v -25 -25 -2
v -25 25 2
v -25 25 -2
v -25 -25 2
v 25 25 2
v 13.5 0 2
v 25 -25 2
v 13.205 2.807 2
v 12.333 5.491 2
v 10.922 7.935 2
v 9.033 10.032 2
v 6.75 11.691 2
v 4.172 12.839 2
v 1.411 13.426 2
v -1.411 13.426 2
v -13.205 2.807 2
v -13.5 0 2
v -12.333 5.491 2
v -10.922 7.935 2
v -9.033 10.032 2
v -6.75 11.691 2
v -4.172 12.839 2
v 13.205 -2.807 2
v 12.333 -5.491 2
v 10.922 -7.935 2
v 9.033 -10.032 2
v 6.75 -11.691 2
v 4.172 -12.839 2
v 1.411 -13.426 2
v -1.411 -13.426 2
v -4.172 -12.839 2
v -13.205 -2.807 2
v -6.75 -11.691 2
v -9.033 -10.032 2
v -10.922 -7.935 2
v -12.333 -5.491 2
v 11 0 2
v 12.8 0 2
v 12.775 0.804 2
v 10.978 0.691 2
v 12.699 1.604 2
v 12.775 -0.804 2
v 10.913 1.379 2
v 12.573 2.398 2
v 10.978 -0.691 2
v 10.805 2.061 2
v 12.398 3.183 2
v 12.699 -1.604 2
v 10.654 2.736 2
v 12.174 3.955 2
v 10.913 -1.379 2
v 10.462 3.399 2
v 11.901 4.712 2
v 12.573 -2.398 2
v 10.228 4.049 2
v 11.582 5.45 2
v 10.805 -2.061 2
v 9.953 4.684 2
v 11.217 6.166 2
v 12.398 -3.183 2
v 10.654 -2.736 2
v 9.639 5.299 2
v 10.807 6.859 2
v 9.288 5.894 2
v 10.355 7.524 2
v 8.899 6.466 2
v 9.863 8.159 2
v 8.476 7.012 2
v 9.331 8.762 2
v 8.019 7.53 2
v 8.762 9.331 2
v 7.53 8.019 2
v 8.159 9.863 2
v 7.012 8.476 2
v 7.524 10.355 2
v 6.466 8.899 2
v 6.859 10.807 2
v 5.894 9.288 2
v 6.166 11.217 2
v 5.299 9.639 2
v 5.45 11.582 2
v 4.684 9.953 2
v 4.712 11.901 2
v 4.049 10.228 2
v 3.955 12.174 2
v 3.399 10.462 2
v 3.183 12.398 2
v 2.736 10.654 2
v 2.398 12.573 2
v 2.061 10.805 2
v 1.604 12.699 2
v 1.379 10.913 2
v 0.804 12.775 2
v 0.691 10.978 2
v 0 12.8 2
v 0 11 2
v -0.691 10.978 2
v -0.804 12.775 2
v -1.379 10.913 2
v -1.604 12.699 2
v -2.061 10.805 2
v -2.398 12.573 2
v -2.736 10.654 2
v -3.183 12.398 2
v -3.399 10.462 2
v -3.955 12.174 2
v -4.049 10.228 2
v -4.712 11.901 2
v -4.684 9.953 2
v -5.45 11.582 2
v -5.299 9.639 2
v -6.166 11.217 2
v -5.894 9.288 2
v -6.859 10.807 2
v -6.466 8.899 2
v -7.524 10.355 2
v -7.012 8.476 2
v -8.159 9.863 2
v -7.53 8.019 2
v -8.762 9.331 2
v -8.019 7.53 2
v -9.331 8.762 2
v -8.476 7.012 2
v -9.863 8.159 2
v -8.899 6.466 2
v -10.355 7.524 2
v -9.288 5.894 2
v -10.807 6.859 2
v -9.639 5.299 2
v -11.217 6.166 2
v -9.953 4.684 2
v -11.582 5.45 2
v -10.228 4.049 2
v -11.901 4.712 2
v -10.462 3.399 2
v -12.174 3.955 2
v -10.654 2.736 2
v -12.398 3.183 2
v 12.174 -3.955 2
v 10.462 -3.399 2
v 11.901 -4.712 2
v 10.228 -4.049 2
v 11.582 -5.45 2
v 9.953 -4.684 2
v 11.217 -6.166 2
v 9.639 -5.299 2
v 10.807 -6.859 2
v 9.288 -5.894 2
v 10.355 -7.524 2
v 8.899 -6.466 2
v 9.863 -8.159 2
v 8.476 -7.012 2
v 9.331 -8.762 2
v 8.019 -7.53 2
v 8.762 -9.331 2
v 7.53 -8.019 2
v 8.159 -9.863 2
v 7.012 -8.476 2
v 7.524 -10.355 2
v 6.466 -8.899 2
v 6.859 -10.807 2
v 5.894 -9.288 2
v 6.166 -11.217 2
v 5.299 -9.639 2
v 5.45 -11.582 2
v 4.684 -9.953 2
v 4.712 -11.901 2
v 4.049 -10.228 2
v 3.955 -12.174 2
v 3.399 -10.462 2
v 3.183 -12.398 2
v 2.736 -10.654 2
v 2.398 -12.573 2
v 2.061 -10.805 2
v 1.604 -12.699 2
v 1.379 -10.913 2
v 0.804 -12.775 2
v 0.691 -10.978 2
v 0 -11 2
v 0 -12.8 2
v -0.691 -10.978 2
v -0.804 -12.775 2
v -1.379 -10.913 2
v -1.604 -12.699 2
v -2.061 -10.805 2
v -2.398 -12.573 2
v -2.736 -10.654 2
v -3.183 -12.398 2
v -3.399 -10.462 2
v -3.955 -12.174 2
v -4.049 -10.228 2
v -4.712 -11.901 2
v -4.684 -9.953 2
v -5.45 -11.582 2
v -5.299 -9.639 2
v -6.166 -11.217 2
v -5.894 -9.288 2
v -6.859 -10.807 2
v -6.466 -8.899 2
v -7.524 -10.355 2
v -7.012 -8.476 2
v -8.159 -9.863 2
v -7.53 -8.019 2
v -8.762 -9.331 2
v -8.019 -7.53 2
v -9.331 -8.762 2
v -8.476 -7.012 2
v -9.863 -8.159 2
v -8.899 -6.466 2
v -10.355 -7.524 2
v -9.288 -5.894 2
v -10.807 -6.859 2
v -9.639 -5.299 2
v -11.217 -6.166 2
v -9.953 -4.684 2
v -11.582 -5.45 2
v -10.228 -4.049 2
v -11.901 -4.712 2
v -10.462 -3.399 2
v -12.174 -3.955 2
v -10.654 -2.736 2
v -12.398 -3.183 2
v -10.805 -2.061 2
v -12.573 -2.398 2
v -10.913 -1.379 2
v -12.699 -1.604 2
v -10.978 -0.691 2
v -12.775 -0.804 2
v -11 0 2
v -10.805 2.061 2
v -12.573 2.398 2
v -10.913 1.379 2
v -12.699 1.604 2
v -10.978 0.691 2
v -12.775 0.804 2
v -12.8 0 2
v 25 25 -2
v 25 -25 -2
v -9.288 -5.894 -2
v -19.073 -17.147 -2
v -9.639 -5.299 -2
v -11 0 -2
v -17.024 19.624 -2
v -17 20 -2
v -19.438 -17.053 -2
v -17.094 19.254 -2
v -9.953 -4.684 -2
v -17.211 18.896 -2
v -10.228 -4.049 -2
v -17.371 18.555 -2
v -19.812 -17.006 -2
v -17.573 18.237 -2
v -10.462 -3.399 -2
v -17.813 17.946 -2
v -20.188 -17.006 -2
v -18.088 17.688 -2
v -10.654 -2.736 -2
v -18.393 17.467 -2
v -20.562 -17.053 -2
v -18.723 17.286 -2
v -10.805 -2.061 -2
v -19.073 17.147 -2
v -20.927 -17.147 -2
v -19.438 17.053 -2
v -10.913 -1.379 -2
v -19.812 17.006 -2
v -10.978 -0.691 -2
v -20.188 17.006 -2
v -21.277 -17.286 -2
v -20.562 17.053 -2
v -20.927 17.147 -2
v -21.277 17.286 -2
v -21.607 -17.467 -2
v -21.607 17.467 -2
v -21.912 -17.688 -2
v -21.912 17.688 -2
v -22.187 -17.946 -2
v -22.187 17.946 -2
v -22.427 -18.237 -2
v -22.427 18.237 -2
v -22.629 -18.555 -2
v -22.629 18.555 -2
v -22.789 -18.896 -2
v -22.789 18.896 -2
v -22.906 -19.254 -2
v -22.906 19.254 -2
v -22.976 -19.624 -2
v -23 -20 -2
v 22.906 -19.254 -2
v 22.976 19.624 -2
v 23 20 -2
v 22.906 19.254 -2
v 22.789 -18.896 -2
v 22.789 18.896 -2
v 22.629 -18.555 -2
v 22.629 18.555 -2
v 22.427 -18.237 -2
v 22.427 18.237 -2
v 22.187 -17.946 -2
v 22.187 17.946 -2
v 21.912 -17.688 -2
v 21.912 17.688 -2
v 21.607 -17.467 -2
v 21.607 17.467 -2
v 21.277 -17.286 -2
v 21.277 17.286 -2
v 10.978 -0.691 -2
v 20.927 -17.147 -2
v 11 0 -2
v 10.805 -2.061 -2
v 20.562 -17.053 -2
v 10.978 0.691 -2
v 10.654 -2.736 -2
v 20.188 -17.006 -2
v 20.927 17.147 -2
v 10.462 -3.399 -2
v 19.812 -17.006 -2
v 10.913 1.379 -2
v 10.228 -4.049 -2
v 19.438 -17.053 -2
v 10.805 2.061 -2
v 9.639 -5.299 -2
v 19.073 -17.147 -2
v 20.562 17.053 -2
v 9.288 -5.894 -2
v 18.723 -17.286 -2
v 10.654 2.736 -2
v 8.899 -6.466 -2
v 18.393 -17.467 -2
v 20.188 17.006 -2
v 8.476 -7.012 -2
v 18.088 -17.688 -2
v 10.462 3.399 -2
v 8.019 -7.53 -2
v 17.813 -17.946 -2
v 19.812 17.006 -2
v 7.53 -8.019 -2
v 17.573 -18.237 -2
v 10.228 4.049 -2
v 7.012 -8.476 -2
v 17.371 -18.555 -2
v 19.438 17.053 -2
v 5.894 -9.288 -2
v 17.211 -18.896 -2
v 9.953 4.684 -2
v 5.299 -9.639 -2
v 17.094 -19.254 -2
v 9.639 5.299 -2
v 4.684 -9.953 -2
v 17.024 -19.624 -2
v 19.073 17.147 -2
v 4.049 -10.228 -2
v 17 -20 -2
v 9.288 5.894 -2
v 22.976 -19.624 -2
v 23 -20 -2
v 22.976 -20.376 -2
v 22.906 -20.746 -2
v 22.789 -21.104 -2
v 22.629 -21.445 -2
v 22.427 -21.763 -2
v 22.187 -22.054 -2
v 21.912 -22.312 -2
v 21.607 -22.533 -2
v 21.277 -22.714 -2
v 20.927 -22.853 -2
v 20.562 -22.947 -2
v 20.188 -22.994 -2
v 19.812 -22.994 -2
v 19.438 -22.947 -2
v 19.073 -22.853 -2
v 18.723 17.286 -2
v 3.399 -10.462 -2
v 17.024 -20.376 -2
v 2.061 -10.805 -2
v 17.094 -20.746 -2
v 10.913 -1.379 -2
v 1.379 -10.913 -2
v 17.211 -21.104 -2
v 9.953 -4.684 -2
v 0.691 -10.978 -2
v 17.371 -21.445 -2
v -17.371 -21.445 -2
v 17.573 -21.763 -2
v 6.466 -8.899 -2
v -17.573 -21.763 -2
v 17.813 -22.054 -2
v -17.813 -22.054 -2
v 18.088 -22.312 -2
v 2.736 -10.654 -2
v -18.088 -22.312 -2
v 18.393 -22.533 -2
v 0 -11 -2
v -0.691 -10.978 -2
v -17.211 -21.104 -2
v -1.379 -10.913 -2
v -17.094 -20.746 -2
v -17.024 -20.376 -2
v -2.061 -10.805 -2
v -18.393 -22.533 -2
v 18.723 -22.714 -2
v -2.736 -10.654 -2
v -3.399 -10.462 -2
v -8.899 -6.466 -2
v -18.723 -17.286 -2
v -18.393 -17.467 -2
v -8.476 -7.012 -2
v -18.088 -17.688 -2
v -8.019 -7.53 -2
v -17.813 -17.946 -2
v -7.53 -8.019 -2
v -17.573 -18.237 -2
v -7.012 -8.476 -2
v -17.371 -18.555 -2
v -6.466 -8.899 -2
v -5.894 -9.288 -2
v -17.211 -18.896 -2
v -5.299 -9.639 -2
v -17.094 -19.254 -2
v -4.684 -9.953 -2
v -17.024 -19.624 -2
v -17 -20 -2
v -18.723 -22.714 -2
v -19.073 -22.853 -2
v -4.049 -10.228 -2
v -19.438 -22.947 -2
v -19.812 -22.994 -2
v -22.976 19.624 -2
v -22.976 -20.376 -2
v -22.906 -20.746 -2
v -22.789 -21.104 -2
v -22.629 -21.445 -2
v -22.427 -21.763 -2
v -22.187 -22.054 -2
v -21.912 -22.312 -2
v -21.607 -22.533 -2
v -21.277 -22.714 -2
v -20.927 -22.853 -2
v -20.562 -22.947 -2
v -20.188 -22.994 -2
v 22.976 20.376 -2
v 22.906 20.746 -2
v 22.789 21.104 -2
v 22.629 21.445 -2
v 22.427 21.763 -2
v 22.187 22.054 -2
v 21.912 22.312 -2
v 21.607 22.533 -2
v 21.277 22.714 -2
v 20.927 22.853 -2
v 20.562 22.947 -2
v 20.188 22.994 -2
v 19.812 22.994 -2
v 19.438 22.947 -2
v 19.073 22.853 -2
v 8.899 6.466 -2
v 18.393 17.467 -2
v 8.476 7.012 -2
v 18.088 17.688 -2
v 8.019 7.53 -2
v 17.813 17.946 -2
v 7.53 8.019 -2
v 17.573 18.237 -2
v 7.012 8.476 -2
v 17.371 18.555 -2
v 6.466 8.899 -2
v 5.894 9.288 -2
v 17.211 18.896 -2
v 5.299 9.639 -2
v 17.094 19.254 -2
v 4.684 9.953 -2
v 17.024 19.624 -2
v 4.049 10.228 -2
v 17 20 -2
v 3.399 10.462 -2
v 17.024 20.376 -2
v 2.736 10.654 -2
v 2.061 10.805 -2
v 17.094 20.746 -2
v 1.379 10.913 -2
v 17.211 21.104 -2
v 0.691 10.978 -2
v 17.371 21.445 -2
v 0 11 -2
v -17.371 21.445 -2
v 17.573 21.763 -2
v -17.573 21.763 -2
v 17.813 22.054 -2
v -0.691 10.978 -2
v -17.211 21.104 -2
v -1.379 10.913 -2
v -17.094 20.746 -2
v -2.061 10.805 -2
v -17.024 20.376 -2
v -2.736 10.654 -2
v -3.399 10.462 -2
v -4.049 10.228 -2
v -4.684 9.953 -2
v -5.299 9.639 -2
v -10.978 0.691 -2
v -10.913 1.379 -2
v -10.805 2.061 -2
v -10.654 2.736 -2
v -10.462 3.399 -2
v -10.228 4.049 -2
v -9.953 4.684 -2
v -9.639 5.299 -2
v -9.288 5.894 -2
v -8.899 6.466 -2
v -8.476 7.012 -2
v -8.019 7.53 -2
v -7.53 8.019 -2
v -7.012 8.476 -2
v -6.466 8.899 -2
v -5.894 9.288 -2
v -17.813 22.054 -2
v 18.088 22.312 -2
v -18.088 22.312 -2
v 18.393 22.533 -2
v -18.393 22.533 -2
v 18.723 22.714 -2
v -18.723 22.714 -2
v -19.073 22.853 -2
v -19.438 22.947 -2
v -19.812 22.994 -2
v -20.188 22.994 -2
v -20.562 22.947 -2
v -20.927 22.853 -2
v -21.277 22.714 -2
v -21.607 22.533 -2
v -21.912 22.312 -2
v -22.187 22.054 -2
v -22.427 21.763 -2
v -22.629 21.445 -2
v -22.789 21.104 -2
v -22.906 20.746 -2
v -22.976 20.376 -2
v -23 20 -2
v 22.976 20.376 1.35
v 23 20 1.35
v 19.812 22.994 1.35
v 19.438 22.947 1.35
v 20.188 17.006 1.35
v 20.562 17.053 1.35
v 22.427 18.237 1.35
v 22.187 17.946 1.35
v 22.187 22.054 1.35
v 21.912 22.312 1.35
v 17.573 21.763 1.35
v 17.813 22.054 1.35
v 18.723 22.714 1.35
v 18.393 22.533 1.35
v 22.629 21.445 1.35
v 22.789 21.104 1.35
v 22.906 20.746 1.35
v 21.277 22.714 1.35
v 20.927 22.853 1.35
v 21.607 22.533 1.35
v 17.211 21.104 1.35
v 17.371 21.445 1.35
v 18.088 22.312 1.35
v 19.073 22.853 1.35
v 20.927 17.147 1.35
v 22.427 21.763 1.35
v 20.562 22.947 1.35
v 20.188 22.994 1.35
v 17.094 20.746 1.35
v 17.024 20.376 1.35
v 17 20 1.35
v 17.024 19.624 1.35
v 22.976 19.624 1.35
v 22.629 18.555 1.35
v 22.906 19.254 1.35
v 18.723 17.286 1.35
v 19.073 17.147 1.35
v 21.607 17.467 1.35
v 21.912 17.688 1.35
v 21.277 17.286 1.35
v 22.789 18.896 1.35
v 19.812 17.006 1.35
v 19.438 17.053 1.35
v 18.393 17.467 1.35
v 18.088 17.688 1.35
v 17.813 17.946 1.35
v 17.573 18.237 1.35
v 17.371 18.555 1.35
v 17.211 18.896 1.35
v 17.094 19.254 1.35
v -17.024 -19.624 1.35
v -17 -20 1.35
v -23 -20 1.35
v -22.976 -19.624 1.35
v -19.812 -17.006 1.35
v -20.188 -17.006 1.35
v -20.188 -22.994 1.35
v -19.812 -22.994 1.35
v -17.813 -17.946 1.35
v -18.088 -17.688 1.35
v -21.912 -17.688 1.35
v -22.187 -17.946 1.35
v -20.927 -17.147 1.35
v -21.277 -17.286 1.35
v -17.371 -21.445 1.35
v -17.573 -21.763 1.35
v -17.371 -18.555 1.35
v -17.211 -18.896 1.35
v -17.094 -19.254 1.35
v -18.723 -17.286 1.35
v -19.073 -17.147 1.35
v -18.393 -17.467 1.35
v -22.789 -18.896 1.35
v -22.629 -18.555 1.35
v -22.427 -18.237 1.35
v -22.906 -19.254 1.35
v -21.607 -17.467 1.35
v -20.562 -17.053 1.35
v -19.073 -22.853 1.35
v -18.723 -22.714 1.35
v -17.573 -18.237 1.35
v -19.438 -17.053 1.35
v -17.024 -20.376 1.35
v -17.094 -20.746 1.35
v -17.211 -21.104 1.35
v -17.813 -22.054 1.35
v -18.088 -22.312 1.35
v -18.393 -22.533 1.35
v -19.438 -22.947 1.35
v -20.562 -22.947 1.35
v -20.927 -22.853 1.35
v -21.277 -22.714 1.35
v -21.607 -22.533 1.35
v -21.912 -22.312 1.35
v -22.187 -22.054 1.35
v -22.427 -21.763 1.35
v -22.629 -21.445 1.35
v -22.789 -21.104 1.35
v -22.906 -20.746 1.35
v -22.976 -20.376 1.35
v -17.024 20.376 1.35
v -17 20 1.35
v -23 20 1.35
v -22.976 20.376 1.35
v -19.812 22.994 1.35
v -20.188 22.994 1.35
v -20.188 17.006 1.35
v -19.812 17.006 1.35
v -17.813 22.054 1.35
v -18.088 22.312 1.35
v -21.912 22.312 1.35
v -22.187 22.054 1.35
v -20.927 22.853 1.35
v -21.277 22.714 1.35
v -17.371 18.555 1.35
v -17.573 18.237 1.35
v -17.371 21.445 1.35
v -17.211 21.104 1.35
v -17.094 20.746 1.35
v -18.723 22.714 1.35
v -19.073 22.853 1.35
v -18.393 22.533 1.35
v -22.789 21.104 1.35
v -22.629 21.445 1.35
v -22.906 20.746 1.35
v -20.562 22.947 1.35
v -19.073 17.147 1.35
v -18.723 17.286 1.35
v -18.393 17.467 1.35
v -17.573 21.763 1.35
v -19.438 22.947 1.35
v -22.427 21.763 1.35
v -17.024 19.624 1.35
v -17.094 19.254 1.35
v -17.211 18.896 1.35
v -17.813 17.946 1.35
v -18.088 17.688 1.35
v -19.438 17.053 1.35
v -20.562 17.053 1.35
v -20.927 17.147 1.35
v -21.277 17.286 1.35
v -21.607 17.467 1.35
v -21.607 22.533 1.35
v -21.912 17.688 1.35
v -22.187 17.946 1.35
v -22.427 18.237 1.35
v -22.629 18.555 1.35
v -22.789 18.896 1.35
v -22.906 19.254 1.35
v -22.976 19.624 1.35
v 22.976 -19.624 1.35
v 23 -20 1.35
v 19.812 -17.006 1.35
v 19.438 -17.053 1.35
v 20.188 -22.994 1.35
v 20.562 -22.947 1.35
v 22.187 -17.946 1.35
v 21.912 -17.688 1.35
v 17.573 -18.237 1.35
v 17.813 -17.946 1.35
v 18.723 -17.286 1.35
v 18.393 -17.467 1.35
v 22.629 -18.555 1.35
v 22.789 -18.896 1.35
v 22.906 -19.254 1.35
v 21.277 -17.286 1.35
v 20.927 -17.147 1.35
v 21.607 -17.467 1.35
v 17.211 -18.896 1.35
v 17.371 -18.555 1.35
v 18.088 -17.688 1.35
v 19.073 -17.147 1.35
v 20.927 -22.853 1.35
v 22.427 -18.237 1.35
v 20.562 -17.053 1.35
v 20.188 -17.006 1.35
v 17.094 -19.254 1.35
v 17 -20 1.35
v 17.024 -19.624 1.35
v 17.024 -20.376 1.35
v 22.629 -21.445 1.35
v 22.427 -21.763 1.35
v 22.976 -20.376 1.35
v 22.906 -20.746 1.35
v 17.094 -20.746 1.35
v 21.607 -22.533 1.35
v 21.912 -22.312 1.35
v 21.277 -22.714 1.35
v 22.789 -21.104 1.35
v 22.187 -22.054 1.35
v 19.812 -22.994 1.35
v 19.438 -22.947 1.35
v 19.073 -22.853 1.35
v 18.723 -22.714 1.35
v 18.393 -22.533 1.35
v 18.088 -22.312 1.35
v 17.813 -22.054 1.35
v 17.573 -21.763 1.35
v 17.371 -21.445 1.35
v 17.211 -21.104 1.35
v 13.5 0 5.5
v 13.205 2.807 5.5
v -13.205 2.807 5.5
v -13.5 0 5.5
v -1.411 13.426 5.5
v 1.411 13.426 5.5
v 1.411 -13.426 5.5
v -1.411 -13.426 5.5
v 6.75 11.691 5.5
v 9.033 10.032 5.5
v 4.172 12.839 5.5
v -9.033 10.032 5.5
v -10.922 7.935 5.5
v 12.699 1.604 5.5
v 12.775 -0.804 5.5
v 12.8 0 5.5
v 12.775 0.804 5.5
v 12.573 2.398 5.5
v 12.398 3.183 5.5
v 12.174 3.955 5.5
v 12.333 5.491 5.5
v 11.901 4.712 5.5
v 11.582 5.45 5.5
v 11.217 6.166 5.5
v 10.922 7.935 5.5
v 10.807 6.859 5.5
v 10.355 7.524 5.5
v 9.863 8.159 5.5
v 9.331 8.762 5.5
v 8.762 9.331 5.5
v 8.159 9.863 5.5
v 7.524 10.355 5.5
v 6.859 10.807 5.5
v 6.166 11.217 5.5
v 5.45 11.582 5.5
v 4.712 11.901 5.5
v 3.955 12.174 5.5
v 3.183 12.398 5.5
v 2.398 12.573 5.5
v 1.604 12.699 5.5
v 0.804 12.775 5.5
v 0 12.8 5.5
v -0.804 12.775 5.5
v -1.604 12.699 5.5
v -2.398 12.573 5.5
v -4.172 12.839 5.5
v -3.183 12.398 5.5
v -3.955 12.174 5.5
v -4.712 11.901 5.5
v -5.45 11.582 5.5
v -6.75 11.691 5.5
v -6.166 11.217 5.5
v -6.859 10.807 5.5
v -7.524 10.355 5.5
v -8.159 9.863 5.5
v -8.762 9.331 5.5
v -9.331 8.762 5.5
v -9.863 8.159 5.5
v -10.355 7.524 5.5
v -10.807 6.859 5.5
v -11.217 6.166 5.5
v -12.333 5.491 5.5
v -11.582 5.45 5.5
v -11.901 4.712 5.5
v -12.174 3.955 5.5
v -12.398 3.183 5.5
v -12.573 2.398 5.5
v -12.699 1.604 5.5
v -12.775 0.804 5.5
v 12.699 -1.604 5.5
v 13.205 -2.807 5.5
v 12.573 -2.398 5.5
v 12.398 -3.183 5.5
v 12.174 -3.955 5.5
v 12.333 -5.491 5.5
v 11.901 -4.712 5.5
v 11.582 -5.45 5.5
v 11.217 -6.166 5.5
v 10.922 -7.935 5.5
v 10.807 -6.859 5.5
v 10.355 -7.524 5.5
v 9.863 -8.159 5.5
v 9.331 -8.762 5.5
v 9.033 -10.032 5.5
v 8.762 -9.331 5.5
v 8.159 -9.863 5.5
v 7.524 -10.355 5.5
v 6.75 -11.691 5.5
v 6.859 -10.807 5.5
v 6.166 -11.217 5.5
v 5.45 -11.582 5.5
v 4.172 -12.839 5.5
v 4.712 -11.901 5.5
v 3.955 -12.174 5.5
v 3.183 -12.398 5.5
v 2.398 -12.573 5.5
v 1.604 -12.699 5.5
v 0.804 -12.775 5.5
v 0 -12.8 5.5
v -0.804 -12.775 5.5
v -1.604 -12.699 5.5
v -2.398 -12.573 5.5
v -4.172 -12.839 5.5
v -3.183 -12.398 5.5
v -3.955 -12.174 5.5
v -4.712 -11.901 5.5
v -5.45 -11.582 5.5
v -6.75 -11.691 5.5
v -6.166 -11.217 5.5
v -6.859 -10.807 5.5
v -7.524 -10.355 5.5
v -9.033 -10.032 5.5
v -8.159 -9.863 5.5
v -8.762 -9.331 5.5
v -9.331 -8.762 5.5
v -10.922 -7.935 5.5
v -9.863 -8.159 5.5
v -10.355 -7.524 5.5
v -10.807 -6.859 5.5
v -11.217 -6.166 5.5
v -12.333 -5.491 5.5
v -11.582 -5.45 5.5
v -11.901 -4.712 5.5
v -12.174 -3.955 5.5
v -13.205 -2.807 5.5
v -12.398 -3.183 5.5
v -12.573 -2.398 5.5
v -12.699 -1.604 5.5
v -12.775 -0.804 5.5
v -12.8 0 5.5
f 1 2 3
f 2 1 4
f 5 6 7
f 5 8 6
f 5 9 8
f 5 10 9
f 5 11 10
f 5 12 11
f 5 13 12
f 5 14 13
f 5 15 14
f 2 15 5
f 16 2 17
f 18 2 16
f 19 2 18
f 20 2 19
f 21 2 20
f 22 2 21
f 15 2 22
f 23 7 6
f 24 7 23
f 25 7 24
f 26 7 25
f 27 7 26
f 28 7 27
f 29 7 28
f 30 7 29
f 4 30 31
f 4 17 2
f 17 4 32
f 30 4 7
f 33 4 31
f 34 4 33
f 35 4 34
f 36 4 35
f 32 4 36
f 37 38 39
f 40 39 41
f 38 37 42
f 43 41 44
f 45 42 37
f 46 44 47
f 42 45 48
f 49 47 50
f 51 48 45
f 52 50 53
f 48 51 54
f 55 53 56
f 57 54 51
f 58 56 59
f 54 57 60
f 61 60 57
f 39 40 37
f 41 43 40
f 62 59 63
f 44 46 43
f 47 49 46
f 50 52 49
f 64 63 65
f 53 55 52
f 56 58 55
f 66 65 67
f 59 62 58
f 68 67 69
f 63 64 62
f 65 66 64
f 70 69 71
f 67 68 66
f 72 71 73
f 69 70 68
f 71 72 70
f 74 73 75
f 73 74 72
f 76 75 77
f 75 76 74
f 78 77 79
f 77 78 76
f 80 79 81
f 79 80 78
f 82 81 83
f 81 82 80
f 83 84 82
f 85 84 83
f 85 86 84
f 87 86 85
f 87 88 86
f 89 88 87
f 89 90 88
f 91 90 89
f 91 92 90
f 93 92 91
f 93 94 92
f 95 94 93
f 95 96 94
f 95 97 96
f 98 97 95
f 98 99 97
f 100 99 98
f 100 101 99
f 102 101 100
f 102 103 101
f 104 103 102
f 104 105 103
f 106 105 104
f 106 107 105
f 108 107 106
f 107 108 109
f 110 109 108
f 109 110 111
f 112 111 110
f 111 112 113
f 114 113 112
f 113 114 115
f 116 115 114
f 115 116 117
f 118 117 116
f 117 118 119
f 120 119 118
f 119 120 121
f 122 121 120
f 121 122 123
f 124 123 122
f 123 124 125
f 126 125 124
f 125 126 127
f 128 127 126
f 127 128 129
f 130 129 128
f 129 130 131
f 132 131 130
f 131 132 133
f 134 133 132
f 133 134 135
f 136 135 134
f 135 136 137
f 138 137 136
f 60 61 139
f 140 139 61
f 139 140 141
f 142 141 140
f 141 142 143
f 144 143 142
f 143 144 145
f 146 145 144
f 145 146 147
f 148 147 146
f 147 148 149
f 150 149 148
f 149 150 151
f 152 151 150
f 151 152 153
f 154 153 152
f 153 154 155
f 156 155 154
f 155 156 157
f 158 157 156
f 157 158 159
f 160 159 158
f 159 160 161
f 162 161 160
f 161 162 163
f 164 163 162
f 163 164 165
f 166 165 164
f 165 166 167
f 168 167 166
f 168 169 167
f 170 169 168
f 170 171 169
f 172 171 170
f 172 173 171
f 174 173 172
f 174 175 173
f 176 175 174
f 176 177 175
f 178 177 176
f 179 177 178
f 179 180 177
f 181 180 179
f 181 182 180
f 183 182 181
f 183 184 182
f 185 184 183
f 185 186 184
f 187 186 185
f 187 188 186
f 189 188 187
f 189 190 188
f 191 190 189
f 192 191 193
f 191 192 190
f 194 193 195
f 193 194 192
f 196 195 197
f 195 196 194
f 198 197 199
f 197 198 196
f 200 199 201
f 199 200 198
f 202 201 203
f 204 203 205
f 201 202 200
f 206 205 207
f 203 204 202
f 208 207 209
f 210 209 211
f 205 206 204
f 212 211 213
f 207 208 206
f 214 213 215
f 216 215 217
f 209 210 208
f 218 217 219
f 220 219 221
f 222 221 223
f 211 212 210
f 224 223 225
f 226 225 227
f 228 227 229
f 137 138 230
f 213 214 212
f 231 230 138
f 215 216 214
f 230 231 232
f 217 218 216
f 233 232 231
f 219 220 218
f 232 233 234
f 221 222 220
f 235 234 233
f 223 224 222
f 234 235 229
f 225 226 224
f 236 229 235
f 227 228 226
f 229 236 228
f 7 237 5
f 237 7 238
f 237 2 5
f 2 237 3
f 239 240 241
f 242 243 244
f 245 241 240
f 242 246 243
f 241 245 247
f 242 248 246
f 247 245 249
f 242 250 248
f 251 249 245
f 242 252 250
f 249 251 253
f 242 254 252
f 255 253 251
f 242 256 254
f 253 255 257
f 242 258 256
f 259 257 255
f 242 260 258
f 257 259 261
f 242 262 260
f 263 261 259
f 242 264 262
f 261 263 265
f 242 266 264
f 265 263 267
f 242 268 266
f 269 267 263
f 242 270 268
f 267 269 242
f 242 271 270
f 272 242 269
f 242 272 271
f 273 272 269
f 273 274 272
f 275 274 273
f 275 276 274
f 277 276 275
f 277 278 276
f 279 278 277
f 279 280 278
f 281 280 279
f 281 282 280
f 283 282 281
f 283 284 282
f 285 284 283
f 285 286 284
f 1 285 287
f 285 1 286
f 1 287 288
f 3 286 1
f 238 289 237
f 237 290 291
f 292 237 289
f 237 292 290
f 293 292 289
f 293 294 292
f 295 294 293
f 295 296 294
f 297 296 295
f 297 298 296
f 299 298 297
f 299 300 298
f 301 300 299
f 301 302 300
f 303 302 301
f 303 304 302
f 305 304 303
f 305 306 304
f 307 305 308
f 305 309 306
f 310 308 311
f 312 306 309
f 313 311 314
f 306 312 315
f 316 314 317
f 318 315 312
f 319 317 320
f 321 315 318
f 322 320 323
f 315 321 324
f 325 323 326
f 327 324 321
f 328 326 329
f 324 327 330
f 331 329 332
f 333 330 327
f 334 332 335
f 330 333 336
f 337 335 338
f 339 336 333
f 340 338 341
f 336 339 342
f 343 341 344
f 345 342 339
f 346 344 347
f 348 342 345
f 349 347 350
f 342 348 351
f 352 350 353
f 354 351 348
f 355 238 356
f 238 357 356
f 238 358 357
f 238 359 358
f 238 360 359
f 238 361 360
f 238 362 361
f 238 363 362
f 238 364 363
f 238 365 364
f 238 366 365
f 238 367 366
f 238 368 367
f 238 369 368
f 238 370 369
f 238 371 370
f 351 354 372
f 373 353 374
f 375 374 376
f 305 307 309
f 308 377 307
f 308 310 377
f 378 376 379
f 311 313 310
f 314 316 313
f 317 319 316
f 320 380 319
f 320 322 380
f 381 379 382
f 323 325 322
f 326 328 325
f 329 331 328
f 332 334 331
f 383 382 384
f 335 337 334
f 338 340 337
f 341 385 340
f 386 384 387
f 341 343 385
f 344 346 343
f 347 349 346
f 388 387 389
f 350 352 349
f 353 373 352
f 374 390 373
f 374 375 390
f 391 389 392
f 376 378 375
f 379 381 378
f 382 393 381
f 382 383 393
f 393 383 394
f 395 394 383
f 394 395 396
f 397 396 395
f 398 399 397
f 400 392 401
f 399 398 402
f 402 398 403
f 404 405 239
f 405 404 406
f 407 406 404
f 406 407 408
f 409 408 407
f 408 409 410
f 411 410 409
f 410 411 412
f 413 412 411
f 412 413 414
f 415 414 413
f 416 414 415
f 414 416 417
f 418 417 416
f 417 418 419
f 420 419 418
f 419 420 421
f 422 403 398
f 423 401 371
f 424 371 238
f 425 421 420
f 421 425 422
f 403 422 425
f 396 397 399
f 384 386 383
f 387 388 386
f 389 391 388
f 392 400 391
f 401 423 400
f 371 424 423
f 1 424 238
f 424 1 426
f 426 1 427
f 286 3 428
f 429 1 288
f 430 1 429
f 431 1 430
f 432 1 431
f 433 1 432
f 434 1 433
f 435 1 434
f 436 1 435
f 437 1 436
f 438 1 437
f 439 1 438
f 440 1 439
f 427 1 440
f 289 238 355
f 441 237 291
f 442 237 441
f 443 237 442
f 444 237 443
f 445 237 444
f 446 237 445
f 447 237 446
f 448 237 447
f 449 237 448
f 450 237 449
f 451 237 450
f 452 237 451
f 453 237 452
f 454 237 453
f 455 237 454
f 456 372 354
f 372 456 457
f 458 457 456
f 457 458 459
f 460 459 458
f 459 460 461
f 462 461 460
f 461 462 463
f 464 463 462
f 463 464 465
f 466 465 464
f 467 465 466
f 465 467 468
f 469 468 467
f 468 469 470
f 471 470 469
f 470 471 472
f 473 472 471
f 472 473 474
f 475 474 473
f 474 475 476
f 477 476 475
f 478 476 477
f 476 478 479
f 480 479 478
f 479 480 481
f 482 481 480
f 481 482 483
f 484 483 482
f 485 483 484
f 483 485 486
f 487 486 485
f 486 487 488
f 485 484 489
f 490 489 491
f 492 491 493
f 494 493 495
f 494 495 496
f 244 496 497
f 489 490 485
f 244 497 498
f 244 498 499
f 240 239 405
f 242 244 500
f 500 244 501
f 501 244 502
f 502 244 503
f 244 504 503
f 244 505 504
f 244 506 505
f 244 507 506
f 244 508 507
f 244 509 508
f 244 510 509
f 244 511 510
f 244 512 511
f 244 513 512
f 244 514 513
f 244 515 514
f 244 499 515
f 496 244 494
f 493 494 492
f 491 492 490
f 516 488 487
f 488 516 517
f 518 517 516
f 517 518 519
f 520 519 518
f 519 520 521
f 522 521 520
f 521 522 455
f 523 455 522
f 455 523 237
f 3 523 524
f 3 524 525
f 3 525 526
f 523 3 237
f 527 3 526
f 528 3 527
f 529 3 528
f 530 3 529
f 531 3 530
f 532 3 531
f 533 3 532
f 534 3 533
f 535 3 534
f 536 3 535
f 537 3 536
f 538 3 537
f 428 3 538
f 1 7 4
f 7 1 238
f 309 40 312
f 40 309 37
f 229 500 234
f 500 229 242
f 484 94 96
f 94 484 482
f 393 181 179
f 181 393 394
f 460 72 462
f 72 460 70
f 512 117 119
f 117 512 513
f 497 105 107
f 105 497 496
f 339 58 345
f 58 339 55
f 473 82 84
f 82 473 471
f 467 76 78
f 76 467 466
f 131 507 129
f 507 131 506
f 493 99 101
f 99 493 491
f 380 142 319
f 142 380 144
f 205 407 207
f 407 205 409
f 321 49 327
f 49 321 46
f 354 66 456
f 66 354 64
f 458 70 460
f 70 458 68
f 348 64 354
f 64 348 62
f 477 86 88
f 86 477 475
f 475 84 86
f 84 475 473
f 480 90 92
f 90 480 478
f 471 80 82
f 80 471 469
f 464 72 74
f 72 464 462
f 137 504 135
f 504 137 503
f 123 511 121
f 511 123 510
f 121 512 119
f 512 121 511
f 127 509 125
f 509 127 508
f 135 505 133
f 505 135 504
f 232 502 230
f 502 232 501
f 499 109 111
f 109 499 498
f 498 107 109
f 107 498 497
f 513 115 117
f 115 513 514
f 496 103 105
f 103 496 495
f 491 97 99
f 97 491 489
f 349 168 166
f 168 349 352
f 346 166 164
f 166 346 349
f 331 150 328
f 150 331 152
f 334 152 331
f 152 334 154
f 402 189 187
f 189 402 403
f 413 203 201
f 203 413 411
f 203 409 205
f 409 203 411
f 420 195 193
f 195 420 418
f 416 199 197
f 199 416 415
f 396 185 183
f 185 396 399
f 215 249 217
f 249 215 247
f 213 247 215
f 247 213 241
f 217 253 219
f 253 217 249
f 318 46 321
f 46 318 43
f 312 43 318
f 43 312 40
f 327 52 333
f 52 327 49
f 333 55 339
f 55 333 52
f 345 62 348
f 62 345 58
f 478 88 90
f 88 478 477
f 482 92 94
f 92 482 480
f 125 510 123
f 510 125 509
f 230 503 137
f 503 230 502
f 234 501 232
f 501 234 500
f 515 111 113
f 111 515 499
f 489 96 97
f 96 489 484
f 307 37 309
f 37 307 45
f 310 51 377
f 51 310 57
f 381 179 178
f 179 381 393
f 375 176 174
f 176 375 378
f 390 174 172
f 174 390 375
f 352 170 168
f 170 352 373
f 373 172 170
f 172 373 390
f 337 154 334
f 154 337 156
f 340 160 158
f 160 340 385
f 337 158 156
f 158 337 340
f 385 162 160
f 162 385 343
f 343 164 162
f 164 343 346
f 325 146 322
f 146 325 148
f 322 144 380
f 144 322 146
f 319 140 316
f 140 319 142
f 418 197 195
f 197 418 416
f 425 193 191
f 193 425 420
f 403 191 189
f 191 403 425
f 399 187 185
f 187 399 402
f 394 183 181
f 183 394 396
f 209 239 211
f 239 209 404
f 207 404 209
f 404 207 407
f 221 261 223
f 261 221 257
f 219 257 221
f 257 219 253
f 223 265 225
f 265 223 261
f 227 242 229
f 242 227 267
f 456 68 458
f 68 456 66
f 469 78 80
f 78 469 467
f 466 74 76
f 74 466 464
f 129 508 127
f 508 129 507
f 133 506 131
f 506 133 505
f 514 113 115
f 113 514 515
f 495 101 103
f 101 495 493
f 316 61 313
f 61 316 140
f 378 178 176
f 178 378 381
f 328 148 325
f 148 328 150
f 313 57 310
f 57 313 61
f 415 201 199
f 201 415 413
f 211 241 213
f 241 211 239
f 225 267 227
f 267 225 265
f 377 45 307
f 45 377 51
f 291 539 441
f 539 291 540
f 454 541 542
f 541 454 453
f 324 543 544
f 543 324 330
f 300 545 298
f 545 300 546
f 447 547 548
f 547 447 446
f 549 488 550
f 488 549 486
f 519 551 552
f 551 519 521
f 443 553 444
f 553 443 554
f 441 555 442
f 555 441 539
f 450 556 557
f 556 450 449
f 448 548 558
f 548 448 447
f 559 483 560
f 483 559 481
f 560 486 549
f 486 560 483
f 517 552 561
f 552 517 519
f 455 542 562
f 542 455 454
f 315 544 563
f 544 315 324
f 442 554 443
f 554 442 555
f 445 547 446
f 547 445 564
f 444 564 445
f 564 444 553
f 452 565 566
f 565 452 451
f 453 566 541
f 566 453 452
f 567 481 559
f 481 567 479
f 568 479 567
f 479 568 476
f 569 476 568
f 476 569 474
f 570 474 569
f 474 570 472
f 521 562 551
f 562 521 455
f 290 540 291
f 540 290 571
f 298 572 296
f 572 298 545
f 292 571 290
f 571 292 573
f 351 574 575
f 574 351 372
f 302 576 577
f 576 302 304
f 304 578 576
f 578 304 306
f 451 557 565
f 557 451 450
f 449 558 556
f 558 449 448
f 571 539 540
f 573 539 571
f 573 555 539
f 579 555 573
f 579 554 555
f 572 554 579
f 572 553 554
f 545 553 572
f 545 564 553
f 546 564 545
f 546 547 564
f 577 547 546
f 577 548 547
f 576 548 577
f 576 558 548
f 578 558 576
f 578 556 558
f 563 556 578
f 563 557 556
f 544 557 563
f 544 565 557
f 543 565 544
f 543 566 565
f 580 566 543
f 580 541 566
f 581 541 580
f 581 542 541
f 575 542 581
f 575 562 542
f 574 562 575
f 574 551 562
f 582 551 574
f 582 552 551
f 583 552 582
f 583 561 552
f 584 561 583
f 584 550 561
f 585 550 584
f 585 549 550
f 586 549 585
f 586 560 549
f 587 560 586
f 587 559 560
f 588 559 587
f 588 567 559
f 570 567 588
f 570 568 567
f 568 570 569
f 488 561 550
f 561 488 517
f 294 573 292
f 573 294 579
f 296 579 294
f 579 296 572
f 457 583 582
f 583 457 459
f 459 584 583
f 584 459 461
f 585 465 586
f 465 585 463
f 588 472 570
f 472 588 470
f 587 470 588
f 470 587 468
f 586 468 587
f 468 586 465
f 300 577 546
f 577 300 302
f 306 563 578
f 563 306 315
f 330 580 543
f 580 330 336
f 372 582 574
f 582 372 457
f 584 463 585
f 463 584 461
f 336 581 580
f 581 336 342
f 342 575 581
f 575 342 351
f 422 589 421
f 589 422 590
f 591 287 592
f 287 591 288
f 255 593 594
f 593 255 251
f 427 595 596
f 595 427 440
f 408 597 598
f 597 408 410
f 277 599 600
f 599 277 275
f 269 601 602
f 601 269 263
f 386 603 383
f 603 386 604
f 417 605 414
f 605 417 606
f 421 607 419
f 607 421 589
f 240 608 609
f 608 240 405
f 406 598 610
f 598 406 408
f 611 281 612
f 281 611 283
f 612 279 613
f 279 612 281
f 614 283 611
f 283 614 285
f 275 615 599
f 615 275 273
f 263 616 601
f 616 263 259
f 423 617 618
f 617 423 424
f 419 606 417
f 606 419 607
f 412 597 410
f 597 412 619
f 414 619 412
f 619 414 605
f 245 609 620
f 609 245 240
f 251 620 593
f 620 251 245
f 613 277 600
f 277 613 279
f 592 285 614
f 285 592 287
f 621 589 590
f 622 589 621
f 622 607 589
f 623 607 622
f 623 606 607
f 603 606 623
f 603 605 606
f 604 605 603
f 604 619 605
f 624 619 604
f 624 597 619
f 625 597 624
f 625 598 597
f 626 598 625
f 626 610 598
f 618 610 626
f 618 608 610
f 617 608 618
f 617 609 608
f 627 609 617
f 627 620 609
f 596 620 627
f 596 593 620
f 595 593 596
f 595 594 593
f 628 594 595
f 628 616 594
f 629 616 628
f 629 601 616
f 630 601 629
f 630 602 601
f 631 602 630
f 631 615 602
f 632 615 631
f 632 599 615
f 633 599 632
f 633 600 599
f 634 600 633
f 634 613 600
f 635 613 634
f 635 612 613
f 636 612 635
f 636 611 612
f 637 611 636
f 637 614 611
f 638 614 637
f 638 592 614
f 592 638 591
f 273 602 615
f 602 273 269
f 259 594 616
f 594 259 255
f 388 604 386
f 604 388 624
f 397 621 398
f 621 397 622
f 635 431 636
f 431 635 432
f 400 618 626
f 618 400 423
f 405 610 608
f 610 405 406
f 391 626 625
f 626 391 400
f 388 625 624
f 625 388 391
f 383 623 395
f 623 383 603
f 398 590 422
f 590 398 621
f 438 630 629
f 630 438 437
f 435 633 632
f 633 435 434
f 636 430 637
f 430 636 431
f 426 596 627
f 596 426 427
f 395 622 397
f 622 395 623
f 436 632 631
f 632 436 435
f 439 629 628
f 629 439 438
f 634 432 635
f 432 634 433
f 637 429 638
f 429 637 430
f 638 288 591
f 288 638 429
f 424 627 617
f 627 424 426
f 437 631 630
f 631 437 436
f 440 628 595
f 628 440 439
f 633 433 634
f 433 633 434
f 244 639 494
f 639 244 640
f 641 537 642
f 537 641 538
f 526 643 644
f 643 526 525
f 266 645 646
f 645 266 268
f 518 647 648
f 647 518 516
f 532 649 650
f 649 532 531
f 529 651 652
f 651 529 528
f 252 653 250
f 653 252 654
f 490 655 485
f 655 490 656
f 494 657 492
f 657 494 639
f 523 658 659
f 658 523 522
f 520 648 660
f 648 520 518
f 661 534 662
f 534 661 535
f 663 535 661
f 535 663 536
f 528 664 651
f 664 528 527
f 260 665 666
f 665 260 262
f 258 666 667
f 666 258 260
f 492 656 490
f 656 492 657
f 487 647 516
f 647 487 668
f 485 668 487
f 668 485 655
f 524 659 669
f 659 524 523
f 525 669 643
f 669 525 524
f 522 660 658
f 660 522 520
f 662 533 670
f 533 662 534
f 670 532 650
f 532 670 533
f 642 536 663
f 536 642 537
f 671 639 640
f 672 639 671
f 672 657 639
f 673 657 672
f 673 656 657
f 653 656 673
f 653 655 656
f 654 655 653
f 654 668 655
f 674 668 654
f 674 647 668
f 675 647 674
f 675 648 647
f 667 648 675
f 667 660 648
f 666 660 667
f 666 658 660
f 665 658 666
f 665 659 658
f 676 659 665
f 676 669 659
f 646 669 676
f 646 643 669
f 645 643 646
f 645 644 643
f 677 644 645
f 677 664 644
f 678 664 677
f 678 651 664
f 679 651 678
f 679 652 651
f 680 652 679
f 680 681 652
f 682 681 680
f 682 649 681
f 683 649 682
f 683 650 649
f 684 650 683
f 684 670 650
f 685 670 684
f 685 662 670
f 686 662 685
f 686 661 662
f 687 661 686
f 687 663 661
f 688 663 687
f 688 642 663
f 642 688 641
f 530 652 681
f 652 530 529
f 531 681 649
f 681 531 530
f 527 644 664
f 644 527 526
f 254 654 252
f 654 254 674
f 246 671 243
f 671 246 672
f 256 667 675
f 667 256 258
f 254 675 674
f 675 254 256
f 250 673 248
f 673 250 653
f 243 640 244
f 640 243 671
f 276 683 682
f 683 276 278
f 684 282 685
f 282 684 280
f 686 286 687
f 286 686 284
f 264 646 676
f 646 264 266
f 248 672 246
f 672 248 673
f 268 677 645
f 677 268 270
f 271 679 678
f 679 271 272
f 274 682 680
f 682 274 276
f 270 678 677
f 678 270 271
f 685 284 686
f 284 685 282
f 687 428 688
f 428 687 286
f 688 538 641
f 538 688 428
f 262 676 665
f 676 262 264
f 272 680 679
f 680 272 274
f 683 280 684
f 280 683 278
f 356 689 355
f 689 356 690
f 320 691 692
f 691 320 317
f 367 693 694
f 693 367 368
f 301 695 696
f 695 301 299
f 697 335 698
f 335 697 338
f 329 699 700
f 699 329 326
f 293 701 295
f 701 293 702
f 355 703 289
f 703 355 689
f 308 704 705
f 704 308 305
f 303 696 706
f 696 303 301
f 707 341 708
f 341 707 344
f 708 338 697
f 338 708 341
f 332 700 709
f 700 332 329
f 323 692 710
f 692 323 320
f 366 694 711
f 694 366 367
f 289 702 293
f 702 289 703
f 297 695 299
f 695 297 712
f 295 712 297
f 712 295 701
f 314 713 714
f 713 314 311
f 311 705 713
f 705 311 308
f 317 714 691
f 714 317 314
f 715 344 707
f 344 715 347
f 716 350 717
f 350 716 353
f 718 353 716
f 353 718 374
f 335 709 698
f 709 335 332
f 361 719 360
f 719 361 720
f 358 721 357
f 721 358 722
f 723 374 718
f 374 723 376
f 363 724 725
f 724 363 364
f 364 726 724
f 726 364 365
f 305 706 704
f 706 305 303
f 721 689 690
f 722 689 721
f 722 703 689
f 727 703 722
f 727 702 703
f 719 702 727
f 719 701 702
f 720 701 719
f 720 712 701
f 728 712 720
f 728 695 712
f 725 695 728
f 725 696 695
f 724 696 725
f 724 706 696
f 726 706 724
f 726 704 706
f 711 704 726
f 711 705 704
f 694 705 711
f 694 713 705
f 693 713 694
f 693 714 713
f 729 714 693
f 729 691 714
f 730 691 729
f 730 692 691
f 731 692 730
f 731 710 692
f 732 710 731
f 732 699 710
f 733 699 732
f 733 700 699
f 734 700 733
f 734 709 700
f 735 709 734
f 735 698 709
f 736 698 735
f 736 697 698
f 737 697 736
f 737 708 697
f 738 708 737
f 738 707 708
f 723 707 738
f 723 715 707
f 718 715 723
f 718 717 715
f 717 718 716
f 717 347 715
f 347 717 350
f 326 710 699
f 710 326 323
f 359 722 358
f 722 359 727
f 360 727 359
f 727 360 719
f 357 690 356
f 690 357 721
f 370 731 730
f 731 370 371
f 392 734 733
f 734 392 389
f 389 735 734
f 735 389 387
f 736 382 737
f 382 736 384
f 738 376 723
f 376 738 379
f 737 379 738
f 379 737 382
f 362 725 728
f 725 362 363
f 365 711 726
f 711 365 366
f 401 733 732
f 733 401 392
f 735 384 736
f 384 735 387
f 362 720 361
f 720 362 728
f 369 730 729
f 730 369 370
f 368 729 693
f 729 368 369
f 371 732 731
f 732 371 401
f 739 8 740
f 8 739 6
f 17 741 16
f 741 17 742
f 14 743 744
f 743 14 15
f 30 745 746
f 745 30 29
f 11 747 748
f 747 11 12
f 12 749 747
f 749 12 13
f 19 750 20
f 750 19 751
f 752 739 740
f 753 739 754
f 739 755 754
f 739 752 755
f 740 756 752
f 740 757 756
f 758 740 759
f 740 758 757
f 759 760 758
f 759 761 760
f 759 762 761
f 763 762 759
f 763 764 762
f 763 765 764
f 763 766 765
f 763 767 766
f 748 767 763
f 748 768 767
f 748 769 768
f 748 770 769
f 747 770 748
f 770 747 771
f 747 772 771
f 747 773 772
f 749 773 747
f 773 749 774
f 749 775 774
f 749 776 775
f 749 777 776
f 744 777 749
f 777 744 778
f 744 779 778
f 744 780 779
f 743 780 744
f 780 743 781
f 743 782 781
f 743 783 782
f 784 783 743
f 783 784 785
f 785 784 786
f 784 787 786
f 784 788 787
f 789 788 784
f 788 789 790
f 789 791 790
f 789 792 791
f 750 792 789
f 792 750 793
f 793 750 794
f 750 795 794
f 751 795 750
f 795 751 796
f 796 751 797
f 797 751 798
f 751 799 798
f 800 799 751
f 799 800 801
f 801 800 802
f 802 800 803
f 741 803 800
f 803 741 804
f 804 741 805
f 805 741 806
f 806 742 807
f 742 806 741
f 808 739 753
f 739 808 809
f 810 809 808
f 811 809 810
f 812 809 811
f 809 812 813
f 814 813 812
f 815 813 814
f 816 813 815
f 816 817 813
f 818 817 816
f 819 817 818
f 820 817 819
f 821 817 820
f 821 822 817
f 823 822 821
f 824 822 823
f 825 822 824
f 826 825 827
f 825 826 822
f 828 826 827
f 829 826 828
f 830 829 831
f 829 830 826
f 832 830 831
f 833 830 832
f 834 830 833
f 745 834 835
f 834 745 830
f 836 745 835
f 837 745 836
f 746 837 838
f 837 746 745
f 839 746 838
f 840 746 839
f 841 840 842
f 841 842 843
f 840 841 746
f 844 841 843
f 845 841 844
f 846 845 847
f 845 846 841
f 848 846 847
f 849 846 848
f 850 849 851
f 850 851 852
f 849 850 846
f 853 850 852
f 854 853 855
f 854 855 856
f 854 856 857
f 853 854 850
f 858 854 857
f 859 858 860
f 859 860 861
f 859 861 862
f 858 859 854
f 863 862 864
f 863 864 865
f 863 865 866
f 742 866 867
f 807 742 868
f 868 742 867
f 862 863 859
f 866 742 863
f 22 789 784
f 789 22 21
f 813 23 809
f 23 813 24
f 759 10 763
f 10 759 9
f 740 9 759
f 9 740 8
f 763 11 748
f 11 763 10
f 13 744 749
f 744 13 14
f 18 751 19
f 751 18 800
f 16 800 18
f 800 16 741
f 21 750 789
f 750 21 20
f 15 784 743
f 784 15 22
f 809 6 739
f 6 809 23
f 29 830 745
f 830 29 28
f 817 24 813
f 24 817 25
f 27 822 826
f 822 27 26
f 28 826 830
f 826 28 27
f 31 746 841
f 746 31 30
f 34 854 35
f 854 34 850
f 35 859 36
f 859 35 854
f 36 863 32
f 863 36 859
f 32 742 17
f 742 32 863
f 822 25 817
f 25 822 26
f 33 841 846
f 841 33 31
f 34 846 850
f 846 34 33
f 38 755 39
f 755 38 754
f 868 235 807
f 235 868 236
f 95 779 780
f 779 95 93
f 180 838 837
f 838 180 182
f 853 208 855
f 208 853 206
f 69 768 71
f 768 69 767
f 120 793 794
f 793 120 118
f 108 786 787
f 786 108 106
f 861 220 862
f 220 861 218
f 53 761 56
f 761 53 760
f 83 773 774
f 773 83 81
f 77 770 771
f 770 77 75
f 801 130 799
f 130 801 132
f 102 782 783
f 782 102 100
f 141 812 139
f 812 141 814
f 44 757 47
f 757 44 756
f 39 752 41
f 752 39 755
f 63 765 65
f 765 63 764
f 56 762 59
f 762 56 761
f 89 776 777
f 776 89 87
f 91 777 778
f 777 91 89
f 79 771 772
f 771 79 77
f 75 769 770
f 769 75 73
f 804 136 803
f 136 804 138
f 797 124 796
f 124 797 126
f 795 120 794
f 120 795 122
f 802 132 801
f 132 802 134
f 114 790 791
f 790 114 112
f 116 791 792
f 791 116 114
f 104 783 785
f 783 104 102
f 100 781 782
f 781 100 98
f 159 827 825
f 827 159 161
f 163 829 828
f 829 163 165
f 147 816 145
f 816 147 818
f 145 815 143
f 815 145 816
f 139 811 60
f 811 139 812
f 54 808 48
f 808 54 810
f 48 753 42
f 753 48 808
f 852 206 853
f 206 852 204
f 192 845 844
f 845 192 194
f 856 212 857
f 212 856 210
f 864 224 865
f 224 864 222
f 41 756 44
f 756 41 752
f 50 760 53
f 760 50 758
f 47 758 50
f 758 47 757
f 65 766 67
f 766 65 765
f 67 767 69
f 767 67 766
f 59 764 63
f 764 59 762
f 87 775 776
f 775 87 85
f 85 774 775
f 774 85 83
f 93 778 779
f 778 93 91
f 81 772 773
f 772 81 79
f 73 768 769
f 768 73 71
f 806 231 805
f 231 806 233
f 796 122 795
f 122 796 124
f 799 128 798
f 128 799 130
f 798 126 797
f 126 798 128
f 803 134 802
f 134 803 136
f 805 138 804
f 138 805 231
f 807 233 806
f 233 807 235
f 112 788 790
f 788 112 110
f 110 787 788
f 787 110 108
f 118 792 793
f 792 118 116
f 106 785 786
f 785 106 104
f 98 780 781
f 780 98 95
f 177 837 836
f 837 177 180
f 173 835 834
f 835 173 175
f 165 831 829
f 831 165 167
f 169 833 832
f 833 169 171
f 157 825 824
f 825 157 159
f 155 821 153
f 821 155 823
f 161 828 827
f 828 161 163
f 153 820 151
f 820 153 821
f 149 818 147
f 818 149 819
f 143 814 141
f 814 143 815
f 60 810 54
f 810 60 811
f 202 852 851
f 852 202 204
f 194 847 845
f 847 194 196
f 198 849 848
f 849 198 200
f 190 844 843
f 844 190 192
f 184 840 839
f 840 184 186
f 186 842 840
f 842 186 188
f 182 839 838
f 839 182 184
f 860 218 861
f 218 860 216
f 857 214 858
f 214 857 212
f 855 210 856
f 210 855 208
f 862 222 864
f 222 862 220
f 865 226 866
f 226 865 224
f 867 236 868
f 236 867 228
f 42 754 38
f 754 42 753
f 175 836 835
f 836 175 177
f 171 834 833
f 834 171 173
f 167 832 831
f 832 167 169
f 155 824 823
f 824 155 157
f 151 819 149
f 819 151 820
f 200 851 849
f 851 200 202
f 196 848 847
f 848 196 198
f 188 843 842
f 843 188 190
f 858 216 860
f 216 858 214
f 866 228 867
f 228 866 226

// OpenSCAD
module tubelensholder1(){
    difference(){
    cube([50,50,4],center=true);
    cylinder(r=11,h=11,center=true,$fn=100);
    //top magnet holders
    translate([20,20,-0.5])cylinder(h=3.7,r=3,center=true,$fn=50);
    translate([-20,-20,-0.5])cylinder(h=3.7,r=3,center=true,$fn=50);
    translate([-20,20,-0.5])cylinder(h=3.7,r=3,center=true,$fn=50);
    translate([20,-20,-0.5])cylinder(h=3.7,r=3,center=true,$fn=50);
}

translate([0,0,3.5])difference(){
    cylinder(h=4,r=13.5,center=true);
    cylinder(h=10,r=25.4/2 + 0.1,center=true,$fn=100);
}
}

tubelensholder1();
